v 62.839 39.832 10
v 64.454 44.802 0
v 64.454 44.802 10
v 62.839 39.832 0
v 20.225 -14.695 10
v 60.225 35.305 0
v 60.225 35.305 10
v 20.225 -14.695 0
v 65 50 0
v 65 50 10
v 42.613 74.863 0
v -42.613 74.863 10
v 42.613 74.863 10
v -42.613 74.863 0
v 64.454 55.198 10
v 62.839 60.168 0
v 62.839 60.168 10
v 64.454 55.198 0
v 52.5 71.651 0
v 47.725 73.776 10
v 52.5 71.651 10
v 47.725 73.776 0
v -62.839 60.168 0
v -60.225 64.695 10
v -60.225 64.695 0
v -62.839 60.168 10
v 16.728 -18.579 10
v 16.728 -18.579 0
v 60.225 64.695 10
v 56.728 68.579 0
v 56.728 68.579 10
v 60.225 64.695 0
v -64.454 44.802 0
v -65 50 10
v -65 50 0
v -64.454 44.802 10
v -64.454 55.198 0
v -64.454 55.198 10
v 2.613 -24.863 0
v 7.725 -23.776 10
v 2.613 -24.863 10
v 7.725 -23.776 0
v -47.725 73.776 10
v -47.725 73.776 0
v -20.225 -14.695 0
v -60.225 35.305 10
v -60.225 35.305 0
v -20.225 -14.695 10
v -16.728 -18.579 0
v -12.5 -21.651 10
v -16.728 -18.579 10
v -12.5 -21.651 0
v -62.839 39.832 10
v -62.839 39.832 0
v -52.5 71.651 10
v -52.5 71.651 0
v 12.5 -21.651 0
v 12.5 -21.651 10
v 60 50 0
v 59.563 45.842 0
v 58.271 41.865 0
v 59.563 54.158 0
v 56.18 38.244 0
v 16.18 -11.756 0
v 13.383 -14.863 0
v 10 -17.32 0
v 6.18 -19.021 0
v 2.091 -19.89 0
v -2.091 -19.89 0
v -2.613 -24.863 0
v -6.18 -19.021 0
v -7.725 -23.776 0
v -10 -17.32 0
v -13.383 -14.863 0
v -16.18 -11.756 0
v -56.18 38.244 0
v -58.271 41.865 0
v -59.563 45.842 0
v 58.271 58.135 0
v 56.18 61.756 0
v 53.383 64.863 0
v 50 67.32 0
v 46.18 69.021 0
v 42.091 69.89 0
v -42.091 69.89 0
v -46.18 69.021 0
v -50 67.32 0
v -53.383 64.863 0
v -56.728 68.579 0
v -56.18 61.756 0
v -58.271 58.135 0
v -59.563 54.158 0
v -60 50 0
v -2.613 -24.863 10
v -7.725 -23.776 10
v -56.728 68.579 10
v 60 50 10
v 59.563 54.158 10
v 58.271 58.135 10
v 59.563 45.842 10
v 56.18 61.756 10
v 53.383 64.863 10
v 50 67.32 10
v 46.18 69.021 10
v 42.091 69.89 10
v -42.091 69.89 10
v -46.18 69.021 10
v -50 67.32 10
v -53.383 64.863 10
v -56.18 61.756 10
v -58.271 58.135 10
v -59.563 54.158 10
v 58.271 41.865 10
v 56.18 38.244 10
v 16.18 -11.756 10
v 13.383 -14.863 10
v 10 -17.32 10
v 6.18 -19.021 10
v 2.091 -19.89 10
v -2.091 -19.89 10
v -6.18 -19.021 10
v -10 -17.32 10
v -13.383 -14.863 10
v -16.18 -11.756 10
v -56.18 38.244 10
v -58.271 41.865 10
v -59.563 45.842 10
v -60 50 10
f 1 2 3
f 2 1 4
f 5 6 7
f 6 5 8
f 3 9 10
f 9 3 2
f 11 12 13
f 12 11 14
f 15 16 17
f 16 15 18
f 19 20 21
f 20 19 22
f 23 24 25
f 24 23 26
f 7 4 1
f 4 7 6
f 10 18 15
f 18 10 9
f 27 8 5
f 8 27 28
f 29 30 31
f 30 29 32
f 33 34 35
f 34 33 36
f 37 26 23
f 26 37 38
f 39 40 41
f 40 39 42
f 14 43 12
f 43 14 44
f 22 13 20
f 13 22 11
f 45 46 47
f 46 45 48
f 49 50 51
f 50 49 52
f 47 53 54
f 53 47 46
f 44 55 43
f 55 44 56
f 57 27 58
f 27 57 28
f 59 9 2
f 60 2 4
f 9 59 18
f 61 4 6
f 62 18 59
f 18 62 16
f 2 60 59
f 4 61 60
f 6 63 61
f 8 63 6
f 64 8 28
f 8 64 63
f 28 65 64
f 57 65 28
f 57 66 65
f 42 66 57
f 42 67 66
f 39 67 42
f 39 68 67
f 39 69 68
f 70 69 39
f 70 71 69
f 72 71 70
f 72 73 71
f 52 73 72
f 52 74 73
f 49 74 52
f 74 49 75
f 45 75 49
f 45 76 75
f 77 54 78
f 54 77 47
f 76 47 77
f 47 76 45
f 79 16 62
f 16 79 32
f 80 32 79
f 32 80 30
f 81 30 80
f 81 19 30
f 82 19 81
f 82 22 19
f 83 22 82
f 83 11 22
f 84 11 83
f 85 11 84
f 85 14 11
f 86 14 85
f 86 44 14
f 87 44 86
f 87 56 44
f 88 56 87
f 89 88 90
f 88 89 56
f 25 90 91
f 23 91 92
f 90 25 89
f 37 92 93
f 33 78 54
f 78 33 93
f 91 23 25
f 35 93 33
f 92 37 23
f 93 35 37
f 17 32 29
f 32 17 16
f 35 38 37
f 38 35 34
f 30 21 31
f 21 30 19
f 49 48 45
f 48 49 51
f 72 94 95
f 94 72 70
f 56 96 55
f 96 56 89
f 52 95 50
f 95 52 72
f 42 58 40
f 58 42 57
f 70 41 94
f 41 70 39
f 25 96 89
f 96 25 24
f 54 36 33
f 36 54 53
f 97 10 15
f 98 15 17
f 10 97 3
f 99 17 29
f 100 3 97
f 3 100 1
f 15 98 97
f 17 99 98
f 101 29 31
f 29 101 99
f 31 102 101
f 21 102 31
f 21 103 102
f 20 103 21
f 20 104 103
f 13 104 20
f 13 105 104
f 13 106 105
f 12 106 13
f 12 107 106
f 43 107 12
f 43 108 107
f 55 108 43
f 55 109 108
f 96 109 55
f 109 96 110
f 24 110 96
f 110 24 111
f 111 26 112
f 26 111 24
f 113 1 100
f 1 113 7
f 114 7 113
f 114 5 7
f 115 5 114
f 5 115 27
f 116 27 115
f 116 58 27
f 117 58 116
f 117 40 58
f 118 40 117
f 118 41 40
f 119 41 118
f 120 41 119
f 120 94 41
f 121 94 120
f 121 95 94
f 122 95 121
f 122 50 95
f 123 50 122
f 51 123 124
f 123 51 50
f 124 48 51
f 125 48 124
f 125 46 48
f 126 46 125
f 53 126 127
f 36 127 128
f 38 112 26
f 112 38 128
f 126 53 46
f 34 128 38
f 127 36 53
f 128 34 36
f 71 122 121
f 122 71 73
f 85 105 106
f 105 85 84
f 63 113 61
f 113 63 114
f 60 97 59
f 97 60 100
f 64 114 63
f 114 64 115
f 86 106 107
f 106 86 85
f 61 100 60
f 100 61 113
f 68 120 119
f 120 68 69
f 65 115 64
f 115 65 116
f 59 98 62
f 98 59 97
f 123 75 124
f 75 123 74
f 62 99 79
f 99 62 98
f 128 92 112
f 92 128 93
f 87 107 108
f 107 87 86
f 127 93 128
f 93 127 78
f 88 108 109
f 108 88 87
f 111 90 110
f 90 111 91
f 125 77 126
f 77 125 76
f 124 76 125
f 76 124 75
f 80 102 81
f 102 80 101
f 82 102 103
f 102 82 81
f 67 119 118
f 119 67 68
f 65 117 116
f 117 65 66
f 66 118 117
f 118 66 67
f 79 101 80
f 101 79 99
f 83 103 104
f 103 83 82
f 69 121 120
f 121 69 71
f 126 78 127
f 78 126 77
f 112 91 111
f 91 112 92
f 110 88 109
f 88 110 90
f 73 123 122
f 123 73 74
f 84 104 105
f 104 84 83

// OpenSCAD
H=10;
D=50;

module v(diameter) {
    hull() {
    cylinder(H,d=diameter);
    for (qq=[-1,1]) {
        translate([qq*40,50,0]) cylinder(H,d=diameter);
    }
}
}
module main() {
    difference() {
    v(D);
    #v(D-10);
    }

}

main();
